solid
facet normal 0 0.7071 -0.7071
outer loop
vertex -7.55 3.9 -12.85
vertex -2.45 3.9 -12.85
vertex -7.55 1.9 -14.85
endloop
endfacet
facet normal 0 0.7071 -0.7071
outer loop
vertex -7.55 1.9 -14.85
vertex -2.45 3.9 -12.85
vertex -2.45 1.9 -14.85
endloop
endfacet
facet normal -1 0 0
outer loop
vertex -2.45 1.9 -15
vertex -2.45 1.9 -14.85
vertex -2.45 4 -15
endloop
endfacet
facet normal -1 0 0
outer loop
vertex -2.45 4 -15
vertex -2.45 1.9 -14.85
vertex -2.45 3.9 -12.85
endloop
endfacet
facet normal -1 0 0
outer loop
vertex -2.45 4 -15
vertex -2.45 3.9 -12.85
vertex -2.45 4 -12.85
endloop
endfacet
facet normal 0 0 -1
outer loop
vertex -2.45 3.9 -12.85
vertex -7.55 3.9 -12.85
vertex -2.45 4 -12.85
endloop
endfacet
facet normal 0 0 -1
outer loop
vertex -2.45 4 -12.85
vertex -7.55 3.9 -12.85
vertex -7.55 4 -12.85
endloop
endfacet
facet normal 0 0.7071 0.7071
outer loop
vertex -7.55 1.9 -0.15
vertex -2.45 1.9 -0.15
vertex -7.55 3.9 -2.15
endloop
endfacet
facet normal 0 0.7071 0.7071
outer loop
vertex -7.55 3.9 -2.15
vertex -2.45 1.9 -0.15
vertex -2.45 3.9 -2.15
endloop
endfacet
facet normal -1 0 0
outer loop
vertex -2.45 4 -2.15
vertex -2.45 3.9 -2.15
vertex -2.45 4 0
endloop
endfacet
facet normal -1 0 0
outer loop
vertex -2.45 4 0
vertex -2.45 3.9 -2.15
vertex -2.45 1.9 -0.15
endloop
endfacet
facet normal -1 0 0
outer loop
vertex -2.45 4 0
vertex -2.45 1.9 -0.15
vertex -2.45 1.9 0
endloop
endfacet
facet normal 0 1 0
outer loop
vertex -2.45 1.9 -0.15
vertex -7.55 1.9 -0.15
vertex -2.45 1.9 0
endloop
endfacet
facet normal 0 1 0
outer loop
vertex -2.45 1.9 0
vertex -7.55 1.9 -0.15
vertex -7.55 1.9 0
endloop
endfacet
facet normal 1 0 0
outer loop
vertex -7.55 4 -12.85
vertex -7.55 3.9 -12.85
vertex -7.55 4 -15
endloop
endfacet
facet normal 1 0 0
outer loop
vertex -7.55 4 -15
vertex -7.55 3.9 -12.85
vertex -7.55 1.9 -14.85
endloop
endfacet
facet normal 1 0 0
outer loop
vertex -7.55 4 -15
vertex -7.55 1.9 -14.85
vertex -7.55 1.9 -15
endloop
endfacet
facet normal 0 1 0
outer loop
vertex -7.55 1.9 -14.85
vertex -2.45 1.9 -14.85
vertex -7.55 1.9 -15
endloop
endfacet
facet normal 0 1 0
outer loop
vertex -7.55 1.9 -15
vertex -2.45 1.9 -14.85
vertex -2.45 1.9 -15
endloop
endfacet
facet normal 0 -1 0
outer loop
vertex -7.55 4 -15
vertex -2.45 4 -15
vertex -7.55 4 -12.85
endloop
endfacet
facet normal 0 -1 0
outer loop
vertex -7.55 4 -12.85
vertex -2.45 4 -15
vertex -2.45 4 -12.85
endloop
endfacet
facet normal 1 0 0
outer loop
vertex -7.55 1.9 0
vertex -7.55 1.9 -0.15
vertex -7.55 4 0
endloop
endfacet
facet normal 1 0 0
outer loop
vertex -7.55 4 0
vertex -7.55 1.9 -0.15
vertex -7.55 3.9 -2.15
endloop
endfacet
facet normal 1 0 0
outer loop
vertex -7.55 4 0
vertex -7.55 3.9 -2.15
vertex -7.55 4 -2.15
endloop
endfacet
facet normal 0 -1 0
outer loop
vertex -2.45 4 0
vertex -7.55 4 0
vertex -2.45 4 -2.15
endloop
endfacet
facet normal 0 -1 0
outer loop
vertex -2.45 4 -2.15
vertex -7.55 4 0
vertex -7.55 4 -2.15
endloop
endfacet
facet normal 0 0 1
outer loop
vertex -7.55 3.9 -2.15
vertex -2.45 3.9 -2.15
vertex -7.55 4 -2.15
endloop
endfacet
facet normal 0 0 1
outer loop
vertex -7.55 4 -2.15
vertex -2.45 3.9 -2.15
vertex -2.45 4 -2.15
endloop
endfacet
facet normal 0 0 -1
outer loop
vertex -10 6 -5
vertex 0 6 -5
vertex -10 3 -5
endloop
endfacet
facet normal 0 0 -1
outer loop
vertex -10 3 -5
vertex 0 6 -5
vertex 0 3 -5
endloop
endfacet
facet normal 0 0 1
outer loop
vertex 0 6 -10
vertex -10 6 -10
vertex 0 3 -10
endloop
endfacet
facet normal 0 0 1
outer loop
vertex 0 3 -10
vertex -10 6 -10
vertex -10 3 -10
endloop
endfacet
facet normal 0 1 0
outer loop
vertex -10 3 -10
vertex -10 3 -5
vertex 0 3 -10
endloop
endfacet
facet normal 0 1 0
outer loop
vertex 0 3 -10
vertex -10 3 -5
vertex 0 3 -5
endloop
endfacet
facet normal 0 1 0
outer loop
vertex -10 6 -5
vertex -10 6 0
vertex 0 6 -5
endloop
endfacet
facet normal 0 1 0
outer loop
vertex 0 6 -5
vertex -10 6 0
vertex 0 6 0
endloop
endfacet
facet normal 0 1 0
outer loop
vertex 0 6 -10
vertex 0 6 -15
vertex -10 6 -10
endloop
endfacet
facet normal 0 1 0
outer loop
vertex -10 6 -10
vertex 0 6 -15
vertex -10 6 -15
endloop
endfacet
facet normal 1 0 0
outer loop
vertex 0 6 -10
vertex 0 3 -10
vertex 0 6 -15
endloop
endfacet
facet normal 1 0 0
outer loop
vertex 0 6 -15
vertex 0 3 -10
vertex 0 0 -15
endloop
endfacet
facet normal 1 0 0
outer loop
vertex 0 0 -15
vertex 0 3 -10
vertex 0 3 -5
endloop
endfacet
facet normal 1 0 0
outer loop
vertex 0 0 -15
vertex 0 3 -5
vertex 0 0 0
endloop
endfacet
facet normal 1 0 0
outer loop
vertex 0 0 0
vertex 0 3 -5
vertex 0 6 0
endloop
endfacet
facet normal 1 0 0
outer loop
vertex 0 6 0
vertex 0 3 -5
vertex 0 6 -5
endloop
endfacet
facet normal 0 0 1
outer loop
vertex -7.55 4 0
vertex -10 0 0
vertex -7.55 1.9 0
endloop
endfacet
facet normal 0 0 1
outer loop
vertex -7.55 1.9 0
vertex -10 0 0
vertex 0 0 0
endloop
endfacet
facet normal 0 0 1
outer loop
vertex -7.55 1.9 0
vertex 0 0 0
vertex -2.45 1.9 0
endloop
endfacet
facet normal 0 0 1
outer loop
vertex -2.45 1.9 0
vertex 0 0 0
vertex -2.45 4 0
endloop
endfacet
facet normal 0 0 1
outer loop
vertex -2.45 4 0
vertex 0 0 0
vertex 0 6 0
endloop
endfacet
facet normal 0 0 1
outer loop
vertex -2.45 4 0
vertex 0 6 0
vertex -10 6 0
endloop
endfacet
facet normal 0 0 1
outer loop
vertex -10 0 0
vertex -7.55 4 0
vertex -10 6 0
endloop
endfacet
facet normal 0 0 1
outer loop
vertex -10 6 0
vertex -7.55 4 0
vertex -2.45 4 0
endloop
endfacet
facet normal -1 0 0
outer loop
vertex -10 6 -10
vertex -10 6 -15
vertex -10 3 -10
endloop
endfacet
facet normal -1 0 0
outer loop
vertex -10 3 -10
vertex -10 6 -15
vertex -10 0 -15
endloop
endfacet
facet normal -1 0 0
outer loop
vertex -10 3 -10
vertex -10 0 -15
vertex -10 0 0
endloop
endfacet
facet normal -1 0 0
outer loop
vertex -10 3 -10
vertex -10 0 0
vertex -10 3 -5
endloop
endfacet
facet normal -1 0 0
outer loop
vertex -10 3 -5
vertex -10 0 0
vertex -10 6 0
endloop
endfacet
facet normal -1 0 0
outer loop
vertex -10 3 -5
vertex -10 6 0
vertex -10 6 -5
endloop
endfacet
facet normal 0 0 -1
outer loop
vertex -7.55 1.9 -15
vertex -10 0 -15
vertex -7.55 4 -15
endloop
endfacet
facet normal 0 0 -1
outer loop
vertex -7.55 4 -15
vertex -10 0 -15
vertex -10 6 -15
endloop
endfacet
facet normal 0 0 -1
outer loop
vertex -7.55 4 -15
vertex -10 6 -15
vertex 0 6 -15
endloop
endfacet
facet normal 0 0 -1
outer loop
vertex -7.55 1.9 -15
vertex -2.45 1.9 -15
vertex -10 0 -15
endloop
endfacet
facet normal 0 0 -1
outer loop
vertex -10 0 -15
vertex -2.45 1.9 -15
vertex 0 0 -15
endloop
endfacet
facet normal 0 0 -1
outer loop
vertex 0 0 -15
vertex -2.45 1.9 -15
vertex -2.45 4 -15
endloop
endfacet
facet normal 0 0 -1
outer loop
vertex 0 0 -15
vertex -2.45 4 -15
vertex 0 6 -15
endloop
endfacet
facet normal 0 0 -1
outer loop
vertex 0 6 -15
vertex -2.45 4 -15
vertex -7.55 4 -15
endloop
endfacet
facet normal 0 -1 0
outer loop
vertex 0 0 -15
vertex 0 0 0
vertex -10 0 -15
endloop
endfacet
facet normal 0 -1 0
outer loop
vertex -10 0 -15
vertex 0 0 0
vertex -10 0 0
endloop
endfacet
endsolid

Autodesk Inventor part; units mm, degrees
ref_plane "YZ Plane" through (0, 0, 0) normal (1, 0, 0) x (0, 1, 0)
ref_plane "XZ Plane" through (0, 0, 0) normal (0, 1, 0) x (-1, 0, 0)
sketch "Эскиз1" plane through (0, 0, 0) normal (0, 1, 0) x (-1, 0, 0)
  line L0 (0, 0) -> (10, 0)
  line L1 (10, 0) -> (10, -15)
  line L2 (10, -15) -> (0, -15)
  line L3 (0, -15) -> (0, 0)
  dimension "d0" = 10
  dimension "d1" = 15
extrude "Выдавливание1" add sketch "Эскиз1" along normal blind 6
sketch "Эскиз2" plane through (0, 6, 0) normal (0, 1, 0) x (1, 0, 0)
  line L0 (-10, 15) -> (-10, 0) projected
  line L1 (-10, 0) -> (-10, 5)
  line L2 (0, 0) -> (0, 15) projected
  line L3 (-10, 5) -> (0, 5)
  line L4 (0, 5) -> (0, 10)
  line L5 (0, 10) -> (-10, 10)
  line L6 (-10, 10) -> (-10, 5)
  line L7 (-10, 10) -> (-10, 15)
  line L8 (-10, 0) -> (0, 0) projected
  point P0 (0, 5)
  dimension "d4" = 5
extrude "Выдавливание2" cut sketch "Эскиз2" against normal blind 3 contours L5 L2 L3 L0
sketch "Эскиз3" plane through (-10, 0, 0) normal (0, 0, 1) x (1, 0, 0)
  line L0 (2.45, 4) -> (7.55, 4)
  line L1 (7.55, 4) -> (7.55, 1.9)
  line L2 (7.55, 1.9) -> (2.45, 1.9)
  line L3 (2.45, 1.9) -> (2.45, 4)
  line L4 (2.45, 2.95) -> (0, 2.95)
  line L5 (0, 0) -> (0, 6) projected
  line L6 (7.55, 2.95) -> (10, 2.95)
  line L7 (10, 0) -> (10, 6) projected
  line L8 (5, 4) -> (5, 6)
  line L9 (10, 6) -> (0, 6) projected
  dimension "d7" = 5.1
  dimension "d8" = 2.1
  dimension "d12" = 2
extrude "Выдавливание3" cut sketch "Эскиз3" against normal blind 2.15 contours L0 L1 L2 L3
ref_plane "РабПлоскость1" through (-10, 6, -7.5) normal (0, 0, 1) x (1, 0, 0)
mirror "Зеркальное отражение1" about plane through (-10, 6, -7.5) normal (0, 0, 1) of "Выдавливание3"
chamfer "Фаска1" distance 2 angle 45 2 edges at (-5, 1.9, -2.15) (-5, 1.9, -12.85)
properties part number "Тестовая коробка"
